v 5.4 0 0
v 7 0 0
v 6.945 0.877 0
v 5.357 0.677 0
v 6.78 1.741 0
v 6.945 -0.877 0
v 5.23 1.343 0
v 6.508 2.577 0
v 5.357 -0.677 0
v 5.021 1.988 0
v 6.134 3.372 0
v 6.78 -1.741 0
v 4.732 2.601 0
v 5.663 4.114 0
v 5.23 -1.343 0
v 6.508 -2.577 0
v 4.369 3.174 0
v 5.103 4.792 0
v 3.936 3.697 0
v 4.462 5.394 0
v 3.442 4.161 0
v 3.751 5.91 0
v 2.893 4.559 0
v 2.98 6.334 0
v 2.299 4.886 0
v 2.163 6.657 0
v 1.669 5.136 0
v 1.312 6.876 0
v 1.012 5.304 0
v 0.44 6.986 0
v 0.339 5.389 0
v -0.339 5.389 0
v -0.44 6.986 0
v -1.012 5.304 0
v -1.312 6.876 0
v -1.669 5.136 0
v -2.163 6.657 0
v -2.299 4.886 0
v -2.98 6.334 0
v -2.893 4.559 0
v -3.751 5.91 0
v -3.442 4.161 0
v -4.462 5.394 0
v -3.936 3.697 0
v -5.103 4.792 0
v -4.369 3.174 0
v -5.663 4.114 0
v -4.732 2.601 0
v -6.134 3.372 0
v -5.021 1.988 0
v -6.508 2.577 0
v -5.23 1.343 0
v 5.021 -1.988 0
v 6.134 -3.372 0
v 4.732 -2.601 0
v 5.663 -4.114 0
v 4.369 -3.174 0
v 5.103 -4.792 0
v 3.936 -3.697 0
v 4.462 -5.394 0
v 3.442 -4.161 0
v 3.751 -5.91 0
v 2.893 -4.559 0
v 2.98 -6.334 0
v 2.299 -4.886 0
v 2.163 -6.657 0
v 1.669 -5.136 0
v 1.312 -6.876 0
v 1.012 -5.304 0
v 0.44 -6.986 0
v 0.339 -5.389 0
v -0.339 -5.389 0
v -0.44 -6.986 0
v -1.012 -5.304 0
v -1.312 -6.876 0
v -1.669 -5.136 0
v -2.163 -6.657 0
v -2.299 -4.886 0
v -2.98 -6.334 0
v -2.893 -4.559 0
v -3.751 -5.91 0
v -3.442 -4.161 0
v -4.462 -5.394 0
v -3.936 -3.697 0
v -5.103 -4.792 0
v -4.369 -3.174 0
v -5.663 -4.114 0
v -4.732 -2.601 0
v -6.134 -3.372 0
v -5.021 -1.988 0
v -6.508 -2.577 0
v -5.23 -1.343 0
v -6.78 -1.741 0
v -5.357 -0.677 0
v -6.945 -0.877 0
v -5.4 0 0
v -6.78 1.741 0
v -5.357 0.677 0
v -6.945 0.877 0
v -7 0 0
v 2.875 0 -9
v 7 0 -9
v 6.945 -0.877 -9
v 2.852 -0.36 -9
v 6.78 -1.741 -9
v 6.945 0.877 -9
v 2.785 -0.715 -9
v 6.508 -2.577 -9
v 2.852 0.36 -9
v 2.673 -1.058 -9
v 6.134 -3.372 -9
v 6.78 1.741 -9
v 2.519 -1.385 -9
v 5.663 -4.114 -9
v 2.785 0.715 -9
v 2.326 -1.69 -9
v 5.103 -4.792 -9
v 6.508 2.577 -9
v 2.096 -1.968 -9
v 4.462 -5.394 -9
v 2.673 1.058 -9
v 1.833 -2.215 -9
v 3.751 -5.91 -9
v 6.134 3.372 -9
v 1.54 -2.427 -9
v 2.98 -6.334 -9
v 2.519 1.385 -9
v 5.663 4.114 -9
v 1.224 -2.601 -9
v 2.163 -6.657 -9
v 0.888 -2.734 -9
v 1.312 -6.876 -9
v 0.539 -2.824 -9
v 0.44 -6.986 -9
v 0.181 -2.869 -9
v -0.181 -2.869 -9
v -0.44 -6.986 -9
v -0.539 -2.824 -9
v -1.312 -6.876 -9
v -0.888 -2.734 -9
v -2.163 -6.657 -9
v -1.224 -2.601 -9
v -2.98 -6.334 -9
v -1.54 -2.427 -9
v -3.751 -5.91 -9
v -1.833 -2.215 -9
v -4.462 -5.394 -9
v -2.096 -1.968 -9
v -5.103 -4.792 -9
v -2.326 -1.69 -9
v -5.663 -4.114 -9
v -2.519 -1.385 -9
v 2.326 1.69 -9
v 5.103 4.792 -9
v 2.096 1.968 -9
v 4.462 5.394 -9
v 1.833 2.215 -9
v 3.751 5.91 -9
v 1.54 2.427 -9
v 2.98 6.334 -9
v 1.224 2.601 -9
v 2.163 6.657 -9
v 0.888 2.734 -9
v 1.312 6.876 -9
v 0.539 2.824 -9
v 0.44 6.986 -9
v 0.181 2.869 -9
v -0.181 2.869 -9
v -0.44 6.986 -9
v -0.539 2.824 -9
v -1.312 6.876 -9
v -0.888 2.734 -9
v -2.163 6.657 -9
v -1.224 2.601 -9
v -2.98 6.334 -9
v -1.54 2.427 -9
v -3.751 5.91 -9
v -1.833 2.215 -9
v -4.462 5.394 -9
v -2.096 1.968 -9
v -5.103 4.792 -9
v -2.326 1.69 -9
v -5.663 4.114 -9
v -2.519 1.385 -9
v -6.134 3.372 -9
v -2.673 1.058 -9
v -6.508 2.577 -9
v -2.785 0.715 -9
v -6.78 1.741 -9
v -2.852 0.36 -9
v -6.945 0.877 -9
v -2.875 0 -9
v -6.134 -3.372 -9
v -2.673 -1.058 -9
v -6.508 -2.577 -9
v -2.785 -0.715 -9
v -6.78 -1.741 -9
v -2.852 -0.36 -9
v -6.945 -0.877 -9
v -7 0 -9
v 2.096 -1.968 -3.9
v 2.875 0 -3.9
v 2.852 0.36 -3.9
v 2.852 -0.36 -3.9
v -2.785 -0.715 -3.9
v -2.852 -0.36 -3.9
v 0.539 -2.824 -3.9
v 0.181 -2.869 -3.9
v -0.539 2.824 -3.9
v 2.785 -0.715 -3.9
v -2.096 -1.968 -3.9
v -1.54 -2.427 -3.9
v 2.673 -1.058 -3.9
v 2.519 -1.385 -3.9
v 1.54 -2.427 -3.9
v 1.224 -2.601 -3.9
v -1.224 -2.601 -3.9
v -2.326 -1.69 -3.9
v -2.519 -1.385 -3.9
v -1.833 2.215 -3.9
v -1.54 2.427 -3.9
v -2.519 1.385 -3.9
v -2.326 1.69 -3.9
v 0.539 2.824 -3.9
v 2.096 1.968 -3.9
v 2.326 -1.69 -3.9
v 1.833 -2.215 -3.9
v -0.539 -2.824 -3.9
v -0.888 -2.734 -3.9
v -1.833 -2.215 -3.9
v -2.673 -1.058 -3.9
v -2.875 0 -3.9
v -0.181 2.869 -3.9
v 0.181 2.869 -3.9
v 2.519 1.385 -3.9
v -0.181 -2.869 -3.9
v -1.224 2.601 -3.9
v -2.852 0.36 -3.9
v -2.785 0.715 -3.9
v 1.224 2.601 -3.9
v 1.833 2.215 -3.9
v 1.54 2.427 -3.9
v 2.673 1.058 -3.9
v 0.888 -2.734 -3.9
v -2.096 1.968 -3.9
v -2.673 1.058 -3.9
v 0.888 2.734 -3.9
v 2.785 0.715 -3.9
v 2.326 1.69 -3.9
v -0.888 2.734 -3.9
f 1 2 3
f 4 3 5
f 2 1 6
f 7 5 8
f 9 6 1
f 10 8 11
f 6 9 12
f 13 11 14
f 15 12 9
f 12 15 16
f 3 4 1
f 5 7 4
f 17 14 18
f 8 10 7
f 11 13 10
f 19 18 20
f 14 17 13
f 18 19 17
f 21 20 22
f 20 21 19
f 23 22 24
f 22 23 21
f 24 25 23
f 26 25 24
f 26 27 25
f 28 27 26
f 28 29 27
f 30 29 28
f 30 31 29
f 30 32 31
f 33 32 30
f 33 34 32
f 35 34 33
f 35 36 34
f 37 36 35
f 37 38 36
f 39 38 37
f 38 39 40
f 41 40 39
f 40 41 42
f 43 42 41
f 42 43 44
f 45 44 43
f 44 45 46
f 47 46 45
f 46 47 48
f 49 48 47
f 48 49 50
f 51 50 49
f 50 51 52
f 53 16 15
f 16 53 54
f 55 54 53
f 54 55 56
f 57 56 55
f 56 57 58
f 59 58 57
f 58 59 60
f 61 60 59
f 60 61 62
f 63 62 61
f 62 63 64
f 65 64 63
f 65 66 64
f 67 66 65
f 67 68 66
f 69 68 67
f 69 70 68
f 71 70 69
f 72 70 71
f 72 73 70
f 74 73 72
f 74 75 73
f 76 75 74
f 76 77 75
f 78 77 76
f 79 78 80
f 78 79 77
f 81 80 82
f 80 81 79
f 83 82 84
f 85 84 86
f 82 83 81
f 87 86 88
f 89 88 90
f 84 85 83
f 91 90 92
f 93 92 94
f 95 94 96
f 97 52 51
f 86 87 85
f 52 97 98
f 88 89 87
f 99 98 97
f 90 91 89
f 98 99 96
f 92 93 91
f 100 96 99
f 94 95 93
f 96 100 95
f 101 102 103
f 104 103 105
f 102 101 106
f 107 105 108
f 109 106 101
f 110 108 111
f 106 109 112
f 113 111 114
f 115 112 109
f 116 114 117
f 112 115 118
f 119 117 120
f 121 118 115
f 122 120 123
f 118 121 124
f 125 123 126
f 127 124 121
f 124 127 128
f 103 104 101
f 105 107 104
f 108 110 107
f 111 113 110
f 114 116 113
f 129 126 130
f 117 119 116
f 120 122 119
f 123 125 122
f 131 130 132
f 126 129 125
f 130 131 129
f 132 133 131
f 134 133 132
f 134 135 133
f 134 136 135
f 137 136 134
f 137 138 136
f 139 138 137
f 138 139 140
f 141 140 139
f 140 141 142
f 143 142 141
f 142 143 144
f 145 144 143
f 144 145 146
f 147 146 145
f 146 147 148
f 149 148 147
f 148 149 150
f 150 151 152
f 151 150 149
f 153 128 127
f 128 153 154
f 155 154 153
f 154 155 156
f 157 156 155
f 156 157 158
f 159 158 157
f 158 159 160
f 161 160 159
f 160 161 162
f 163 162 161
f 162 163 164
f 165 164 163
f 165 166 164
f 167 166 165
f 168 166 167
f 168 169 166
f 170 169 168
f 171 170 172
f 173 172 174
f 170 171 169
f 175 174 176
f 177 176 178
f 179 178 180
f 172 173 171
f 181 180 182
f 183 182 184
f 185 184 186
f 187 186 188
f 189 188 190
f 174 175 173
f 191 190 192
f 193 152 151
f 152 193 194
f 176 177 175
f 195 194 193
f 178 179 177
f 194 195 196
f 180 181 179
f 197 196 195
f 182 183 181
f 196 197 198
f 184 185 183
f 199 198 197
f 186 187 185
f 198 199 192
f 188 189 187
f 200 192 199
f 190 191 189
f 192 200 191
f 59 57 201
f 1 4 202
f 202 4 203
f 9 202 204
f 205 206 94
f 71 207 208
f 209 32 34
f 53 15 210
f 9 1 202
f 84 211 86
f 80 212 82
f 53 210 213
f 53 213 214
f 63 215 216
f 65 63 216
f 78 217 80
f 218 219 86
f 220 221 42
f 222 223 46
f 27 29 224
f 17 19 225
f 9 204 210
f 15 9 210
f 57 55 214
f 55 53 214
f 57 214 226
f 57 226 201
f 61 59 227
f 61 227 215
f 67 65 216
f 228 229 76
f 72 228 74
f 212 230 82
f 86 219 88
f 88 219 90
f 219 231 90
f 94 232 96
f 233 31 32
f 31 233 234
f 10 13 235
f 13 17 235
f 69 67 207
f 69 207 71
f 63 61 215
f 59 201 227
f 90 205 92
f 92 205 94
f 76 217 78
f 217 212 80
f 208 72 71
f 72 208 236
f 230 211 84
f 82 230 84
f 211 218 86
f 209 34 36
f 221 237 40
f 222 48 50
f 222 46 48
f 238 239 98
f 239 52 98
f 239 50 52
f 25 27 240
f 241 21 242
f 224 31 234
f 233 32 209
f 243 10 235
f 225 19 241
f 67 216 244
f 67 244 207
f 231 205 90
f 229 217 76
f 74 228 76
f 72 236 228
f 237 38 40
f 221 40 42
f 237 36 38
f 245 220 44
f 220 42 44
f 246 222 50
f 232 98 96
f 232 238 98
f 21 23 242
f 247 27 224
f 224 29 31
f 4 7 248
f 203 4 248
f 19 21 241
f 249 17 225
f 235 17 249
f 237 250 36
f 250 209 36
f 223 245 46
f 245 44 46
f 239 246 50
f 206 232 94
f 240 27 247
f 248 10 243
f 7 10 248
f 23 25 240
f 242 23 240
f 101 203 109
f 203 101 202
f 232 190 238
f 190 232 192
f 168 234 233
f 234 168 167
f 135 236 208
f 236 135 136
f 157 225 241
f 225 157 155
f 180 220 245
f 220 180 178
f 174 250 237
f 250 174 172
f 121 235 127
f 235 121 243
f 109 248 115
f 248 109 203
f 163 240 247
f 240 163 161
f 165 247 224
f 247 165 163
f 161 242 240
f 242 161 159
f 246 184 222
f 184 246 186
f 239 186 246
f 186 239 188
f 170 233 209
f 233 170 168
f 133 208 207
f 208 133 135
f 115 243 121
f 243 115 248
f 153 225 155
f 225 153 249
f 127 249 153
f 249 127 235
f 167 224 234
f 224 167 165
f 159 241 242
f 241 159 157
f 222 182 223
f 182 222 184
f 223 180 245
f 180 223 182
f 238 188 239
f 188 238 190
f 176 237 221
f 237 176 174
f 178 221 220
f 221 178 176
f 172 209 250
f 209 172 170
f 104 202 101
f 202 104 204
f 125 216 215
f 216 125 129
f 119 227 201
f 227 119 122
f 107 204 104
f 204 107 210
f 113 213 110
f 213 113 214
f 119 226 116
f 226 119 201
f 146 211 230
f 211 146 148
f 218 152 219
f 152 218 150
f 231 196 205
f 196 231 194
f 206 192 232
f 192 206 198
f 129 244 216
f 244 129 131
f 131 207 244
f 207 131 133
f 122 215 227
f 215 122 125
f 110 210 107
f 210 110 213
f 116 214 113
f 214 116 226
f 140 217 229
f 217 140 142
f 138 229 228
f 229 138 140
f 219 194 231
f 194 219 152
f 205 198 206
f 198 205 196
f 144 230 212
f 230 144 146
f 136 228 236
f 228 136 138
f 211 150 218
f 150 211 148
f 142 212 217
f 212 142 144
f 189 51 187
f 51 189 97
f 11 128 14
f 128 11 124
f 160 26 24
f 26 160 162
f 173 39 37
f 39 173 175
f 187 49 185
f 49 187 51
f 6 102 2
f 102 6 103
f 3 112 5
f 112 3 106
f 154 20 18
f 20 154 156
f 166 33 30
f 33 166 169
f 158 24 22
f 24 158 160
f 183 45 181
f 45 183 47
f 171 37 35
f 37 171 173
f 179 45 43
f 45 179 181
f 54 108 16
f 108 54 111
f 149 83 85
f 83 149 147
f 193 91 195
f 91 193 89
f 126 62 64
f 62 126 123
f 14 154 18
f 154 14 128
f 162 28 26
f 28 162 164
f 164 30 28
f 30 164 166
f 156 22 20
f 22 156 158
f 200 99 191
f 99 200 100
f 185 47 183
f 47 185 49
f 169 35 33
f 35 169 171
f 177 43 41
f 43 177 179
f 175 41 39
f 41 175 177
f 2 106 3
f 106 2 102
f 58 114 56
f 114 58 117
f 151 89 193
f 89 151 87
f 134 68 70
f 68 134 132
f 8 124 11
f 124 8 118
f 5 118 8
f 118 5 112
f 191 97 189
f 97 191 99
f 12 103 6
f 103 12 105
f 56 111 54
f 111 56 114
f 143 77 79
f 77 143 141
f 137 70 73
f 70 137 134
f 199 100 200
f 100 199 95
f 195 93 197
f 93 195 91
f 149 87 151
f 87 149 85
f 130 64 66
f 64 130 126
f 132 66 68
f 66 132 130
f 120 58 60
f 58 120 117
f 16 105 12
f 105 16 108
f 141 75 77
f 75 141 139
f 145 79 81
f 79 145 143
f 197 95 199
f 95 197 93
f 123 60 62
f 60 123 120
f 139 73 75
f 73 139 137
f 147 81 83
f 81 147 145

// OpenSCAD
$fn = 50;


difference() {
	union() {
		translate(v = [0, 0, -9.0000000000]) {
			cylinder(h = 9, r = 7.0000000000);
		}
	}
	union() {
		translate(v = [0, 0, 0]) {
			rotate(a = [0, 0, 0]) {
				difference() {
					union() {
						#translate(v = [0, 0, -9.0000000000]) {
							cylinder(h = 9, r = 2.6000000000);
						}
						#translate(v = [0, 0, -3.9000000000]) {
							cylinder(h = 3.9000000000, r = 7.0000000000, r1 = 2.8750000000, r2 = 5.4000000000);
						}
						#translate(v = [0, 0, -9.0000000000]) {
							cylinder(h = 9, r = 2.8750000000);
						}
						#translate(v = [0, 0, -9.0000000000]) {
							cylinder(h = 9, r = 2.6000000000);
						}
					}
					union();
				}
			}
		}
	}
}
